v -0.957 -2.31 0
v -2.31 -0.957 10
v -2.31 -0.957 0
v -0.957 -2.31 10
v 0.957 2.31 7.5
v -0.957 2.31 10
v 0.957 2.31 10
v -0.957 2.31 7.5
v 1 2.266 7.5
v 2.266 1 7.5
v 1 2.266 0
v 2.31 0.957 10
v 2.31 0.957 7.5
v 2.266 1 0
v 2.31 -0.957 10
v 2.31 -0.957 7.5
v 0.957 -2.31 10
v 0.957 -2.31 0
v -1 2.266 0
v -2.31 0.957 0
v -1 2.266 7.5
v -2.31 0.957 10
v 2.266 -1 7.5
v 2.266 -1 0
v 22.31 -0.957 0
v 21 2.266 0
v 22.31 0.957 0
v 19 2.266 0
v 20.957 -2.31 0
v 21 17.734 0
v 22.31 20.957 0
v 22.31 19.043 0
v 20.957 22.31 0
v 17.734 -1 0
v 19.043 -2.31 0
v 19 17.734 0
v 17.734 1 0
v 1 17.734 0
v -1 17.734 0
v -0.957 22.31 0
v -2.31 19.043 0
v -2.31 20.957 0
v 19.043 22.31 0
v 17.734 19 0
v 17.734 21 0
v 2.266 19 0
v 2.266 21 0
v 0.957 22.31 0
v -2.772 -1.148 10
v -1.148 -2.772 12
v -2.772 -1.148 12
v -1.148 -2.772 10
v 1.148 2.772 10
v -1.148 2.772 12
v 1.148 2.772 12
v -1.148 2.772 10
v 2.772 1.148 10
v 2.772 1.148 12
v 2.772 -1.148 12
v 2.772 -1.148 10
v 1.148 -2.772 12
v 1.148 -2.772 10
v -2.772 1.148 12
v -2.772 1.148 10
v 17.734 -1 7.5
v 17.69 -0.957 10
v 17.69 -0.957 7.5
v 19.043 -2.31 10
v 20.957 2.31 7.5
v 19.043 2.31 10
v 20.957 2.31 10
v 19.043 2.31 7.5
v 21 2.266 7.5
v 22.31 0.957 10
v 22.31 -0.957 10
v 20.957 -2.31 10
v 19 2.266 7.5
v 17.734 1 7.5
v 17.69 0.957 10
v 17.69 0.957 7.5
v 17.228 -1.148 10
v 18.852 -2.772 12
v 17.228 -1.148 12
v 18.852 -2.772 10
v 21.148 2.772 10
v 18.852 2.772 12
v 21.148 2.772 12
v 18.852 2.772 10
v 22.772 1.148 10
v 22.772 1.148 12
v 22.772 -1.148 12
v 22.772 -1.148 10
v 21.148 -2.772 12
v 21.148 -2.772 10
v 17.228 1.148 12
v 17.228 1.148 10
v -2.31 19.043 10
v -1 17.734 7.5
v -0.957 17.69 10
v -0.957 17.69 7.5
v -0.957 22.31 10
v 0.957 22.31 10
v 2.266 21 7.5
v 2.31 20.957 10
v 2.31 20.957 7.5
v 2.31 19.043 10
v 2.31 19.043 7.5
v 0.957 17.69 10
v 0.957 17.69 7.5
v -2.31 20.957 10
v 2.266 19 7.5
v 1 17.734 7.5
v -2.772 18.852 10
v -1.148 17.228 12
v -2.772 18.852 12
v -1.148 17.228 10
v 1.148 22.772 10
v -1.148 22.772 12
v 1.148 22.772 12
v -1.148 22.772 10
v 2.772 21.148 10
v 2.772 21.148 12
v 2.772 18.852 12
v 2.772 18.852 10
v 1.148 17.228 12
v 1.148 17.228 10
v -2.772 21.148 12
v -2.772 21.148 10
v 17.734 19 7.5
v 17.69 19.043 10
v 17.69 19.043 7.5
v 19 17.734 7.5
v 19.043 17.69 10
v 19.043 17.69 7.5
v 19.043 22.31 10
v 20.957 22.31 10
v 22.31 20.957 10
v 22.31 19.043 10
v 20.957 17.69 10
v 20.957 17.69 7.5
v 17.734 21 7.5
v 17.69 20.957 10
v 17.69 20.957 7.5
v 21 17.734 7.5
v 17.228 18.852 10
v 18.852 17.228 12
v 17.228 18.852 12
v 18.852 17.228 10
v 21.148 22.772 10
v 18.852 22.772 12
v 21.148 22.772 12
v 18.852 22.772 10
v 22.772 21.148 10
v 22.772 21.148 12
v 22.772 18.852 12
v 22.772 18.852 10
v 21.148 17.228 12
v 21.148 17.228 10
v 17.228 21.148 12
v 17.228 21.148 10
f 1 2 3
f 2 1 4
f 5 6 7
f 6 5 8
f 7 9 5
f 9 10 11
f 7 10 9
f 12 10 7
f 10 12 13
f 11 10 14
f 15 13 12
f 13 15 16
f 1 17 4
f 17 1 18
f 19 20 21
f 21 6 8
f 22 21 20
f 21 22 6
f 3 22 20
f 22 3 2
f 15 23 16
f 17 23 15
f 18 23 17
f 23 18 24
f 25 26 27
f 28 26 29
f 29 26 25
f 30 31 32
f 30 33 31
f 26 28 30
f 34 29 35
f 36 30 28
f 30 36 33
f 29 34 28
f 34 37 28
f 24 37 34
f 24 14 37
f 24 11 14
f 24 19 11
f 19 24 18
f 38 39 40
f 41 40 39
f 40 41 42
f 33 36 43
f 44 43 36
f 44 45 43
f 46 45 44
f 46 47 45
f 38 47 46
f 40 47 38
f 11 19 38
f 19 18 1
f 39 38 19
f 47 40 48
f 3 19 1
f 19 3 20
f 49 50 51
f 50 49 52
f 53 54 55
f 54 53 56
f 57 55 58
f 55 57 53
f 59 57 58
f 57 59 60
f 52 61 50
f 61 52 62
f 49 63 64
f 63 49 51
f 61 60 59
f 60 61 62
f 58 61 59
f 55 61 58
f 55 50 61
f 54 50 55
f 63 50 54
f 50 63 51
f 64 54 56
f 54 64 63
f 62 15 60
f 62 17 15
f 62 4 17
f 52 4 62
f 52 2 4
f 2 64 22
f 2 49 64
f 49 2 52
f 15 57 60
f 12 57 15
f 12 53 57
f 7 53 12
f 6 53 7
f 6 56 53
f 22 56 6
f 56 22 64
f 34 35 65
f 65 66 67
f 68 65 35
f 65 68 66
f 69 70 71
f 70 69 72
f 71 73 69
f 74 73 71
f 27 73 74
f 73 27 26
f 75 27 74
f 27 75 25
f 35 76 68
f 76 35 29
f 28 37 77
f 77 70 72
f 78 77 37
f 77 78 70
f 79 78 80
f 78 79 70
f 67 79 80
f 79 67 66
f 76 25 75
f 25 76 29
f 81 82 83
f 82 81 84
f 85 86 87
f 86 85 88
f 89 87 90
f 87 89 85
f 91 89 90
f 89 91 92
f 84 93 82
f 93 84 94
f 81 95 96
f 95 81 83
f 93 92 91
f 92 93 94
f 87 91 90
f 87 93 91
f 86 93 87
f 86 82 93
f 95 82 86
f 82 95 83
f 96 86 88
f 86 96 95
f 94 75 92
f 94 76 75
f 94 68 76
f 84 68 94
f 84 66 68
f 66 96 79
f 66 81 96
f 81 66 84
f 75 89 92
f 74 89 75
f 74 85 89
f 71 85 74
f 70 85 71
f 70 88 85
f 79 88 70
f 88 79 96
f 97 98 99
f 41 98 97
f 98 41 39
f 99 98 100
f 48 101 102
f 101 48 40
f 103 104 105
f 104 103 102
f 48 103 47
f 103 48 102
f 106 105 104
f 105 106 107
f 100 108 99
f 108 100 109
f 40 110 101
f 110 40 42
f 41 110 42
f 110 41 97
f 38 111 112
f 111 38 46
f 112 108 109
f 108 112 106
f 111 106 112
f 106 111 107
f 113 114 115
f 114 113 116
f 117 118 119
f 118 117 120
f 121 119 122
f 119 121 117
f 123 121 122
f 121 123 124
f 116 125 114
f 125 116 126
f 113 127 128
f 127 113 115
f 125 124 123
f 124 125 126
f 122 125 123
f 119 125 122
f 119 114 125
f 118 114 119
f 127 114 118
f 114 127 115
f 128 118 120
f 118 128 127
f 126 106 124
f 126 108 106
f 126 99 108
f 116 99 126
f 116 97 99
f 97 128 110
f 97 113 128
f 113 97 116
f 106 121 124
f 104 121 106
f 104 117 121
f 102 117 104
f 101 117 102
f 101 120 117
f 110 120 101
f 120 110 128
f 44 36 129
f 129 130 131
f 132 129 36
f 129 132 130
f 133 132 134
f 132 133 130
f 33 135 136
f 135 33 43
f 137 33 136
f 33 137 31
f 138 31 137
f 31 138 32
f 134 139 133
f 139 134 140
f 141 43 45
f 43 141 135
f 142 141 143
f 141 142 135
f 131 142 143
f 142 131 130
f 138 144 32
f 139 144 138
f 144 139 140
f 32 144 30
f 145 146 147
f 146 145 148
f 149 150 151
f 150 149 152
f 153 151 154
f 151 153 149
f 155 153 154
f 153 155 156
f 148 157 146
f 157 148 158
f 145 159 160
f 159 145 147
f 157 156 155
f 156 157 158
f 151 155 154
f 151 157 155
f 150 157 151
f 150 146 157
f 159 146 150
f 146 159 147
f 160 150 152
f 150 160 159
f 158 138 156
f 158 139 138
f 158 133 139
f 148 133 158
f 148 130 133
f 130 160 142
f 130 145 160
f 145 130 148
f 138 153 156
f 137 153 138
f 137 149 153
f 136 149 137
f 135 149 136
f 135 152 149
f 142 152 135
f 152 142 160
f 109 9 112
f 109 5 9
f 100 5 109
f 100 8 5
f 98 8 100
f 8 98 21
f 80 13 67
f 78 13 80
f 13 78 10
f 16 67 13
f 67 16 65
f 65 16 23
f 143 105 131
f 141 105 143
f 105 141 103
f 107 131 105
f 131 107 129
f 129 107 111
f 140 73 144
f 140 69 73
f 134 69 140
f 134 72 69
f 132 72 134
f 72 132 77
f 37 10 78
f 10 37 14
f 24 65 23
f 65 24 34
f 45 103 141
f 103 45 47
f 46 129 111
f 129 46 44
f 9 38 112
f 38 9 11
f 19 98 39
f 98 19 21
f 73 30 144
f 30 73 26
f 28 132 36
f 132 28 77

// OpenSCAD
module tower (coord) {
	translate(coord) {
		rotate([0, 0, (360/8)/2]) {
			cylinder(11, 2.5, 2.5, $fn=8);
			translate([0, 0, 10])
				cylinder(2, 3, 3, $fn=8);
		}
	}
}

// towers blue
tower([0, 0, 0]);
tower([20, 0, 0]);
tower([0, 20, 0]);
tower([20, 20, 0]);

//walls are red
translate ([0, -1, 0]) 
	cube([20, 2, 7.5]);
translate ([0, 19, 0]) 
	cube([20, 2, 7.5]);
translate ([-1, 0, 0]) 
	cube([2, 20, 7.5]);
translate ([19, 0, 0]) 
	cube([2, 20, 7.5]);
